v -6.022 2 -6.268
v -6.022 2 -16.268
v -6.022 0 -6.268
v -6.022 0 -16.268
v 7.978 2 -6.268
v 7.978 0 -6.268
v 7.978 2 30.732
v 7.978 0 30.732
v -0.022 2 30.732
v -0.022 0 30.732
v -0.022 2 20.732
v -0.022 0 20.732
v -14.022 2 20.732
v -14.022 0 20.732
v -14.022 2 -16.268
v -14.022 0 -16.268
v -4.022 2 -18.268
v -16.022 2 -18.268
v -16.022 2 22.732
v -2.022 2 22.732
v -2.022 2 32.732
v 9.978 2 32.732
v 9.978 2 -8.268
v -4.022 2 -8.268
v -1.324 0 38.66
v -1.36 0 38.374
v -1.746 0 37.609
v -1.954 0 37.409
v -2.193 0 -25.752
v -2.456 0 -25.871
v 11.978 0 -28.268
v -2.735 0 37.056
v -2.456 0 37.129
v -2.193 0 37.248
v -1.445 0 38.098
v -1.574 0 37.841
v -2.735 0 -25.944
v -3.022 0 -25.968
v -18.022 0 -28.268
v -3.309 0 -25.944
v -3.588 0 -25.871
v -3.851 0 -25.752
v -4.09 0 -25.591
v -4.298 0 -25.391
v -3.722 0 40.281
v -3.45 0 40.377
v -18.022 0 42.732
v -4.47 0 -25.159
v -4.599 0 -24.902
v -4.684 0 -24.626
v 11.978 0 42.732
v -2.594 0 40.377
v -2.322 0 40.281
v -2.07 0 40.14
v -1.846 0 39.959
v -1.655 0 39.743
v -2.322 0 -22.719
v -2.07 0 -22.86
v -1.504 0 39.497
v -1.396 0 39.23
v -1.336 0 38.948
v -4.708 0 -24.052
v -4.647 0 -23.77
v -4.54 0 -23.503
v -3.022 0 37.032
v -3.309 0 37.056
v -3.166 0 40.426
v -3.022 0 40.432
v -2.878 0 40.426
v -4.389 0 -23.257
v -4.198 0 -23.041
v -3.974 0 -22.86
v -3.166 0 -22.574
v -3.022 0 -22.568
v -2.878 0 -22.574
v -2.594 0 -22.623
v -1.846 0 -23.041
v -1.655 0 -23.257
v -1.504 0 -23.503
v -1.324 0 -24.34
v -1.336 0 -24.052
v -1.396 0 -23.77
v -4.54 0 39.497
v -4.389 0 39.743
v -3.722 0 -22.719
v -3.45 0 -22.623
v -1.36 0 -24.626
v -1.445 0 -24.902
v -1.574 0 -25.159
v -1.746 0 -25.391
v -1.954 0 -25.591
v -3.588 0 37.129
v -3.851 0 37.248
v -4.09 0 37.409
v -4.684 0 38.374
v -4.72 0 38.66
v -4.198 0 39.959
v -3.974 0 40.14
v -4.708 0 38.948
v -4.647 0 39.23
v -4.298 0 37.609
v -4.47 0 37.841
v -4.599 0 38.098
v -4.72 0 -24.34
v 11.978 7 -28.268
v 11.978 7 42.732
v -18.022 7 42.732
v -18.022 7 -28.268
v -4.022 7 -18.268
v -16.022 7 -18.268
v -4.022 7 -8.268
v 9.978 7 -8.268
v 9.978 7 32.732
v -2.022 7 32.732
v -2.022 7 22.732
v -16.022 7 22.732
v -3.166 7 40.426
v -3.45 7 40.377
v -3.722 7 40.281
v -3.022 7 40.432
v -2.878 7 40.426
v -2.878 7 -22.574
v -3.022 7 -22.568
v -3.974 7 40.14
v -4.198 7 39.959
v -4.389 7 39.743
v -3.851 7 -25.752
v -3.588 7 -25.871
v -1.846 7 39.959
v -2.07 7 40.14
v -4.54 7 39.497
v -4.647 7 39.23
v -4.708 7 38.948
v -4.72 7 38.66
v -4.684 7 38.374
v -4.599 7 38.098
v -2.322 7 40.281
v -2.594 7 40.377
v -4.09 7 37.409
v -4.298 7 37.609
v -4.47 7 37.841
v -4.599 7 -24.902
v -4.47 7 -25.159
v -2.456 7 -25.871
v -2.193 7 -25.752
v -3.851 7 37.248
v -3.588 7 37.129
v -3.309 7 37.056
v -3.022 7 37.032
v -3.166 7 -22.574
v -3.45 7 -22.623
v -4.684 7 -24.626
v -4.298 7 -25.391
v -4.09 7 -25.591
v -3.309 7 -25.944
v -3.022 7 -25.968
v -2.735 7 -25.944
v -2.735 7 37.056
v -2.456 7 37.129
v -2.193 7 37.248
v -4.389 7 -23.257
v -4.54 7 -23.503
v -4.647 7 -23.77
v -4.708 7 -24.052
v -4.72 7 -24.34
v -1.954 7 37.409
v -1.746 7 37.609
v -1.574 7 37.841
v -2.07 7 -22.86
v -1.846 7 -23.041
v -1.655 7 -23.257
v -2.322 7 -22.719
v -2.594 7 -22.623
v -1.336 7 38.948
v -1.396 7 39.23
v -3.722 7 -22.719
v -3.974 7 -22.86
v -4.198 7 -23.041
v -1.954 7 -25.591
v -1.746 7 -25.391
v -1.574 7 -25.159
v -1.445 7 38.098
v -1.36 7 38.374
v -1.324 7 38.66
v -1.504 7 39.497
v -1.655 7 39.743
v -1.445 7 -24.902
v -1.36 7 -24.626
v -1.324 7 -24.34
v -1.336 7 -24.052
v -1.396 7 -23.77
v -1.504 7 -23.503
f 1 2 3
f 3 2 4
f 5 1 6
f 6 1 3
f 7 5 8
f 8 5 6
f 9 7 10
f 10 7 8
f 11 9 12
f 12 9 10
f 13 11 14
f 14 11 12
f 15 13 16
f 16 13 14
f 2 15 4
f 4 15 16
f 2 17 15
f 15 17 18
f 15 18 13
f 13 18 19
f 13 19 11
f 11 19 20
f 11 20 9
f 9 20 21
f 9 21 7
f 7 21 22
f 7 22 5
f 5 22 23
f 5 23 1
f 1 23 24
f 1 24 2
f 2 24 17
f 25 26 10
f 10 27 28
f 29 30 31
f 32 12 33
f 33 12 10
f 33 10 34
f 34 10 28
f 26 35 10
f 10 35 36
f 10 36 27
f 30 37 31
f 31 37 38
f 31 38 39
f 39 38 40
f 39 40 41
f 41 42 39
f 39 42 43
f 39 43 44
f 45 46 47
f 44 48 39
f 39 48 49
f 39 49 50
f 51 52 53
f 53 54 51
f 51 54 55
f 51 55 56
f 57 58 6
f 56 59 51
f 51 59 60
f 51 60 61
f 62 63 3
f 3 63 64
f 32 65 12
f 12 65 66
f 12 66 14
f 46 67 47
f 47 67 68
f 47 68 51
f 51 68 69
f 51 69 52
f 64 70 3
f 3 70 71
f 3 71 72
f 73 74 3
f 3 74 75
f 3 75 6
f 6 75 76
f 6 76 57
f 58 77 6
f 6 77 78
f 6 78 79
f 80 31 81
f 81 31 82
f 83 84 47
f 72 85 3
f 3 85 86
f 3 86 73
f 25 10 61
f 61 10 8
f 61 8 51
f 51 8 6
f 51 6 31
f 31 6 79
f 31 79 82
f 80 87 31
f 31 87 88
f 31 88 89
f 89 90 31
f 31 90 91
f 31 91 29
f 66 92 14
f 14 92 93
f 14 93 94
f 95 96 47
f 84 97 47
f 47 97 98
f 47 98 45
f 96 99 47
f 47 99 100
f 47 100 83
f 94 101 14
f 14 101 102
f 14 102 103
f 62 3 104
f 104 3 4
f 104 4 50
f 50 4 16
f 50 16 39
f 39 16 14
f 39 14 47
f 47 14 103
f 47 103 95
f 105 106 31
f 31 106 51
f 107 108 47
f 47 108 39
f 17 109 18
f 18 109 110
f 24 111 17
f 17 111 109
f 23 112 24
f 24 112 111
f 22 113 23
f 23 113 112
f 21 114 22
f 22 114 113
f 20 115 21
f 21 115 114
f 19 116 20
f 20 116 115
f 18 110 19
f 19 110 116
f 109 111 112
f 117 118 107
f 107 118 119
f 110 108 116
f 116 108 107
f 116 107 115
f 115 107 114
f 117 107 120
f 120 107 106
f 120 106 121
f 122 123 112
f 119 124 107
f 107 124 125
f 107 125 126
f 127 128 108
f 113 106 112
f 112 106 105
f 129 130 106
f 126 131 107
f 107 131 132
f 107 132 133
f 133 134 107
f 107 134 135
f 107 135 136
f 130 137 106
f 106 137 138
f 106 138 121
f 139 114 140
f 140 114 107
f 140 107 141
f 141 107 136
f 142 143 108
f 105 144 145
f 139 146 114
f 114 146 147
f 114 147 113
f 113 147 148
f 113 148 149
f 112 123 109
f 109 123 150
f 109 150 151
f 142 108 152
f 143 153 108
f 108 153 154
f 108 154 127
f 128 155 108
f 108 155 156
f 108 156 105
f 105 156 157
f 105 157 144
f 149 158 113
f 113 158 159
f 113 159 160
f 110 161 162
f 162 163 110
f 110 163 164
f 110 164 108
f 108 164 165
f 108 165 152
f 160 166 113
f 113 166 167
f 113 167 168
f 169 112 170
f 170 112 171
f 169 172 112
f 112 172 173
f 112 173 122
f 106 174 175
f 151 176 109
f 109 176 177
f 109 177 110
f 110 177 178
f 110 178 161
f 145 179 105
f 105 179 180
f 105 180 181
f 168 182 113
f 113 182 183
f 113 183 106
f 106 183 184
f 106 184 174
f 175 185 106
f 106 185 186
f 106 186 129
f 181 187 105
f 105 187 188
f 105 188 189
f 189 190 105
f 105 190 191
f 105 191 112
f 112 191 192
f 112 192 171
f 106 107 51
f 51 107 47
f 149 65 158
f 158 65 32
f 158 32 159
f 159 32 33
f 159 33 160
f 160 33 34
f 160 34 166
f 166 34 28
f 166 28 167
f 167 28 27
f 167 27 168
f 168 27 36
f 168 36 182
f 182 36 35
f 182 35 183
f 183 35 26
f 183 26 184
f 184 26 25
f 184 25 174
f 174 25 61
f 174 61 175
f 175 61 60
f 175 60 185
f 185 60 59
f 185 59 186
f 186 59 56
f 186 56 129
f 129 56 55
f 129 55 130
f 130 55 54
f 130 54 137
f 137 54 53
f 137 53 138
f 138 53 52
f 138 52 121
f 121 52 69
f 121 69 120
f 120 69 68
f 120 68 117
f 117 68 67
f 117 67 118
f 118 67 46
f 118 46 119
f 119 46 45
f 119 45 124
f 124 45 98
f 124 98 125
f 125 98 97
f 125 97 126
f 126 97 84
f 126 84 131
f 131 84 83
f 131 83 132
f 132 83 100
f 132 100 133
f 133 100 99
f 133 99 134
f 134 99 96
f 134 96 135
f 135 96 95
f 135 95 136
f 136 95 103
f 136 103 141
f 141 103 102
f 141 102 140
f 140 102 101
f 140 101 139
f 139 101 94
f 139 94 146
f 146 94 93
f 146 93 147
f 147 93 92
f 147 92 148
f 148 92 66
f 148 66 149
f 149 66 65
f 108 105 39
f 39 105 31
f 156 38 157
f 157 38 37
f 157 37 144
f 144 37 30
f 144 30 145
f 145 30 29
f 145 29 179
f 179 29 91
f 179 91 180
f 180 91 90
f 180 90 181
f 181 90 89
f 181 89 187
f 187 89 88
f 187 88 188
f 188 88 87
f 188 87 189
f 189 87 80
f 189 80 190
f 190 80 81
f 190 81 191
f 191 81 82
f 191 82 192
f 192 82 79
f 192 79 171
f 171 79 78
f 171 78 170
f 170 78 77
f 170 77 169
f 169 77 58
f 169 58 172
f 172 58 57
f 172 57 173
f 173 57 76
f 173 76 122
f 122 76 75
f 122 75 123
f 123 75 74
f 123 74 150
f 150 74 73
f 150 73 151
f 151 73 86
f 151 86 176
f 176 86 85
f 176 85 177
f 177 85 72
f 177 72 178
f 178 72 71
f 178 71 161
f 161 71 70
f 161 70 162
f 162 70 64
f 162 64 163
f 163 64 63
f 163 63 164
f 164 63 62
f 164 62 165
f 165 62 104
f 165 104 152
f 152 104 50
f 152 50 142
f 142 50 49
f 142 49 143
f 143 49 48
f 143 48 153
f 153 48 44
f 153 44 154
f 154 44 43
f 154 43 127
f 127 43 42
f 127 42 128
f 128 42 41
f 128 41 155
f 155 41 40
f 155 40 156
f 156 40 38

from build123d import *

# Parameters (mm, degrees)
BOSS_EXTRUDE1_DEPTH = 2
BOSS_EXTRUDE3_DEPTH = 7
SKETCH1_6_R         = 1.7
BOSS_EXTRUDE4_DEPTH = 7


with BuildPart() as part:
    # Sketch1 → Boss-Extrude1 (new body)
    with BuildSketch(Plane(origin=(0, 0, 0), x_dir=(1, 0, 0), z_dir=(0, 1, 0))):
        Polygon((-4.021978022, 18.267996412), (-16.021978022, 18.267996412), (-16.021978022, -22.732003588), (-4.021978022, -22.732003588), (-2.021978022, -22.732003588), (-2.021978022, -32.732003588), (9.978021978, -32.732003588), (9.978021978, 8.267996412), (-2.021978022, 8.267996412), (-4.021978022, 8.267996412), align=None)
        Polygon((-14.021978022, 16.267996412), (-6.021978022, 16.267996412), (-6.021978022, 6.267996412), (-2.021978022, 6.267996412), (7.978021978, 6.267996412), (7.978021978, -30.732003588), (-0.021978022, -30.732003588), (-0.021978022, -20.732003588), (-4.021978022, -20.732003588), (-14.021978022, -20.732003588), align=None, mode=Mode.SUBTRACT)
    extrude(amount=BOSS_EXTRUDE1_DEPTH)

    # Sketch1<5> → Boss-Extrude3 (add)
    with BuildSketch(Plane(origin=(0, 0, 0), x_dir=(1, 0, 0), z_dir=(0, 1, 0))):
        Polygon((-4.021978022, -34.732003588), (11.978021978, -34.732003588), (11.978021978, 10.267996412), (-2.021978022, 10.267996412), (-2.021978022, 20.267996412), (-18.021978022, 20.267996412), (-18.021978022, -24.732003588), (-4.021978022, -24.732003588), align=None)
        Polygon((-16.021978022, -22.732003588), (-16.021978022, 18.267996412), (-4.021978022, 18.267996412), (-4.021978022, 8.267996412), (-2.021978022, 8.267996412), (9.978021978, 8.267996412), (9.978021978, -32.732003588), (-2.021978022, -32.732003588), (-2.021978022, -22.732003588), (-4.021978022, -22.732003588), align=None, mode=Mode.SUBTRACT)
    extrude(amount=BOSS_EXTRUDE3_DEPTH)

    # Sketch1<6> → Boss-Extrude4 (add)
    # profile 1 of 2: a face of its own
    with BuildSketch(Plane(origin=(0, 0, 0), x_dir=(1, 0, 0), z_dir=(0, 1, 0))):
        Polygon((11.978021978, -42.732003588), (11.978021978, -34.732003588), (-4.021978022, -34.732003588), (-4.021978022, -24.732003588), (-18.021978022, -24.732003588), (-18.021978022, -42.732003588), align=None)
        with Locations((-3.021978022, -38.732003588)):
            Circle(SKETCH1_6_R, mode=Mode.SUBTRACT)
    # profile 2 of 2: a face of its own
    with BuildSketch(Plane(origin=(0, 0, 0), x_dir=(1, 0, 0), z_dir=(0, 1, 0))):
        Polygon((-2.021978022, 10.267996412), (11.978021978, 10.267996412), (11.978021978, 28.267996412), (-18.021978022, 28.267996412), (-18.021978022, 20.267996412), (-2.021978022, 20.267996412), align=None)
        with Locations((-3.021978022, 24.267996412)):
            Circle(SKETCH1_6_R, mode=Mode.SUBTRACT)
    extrude(amount=BOSS_EXTRUDE4_DEPTH)


solid = part.part
